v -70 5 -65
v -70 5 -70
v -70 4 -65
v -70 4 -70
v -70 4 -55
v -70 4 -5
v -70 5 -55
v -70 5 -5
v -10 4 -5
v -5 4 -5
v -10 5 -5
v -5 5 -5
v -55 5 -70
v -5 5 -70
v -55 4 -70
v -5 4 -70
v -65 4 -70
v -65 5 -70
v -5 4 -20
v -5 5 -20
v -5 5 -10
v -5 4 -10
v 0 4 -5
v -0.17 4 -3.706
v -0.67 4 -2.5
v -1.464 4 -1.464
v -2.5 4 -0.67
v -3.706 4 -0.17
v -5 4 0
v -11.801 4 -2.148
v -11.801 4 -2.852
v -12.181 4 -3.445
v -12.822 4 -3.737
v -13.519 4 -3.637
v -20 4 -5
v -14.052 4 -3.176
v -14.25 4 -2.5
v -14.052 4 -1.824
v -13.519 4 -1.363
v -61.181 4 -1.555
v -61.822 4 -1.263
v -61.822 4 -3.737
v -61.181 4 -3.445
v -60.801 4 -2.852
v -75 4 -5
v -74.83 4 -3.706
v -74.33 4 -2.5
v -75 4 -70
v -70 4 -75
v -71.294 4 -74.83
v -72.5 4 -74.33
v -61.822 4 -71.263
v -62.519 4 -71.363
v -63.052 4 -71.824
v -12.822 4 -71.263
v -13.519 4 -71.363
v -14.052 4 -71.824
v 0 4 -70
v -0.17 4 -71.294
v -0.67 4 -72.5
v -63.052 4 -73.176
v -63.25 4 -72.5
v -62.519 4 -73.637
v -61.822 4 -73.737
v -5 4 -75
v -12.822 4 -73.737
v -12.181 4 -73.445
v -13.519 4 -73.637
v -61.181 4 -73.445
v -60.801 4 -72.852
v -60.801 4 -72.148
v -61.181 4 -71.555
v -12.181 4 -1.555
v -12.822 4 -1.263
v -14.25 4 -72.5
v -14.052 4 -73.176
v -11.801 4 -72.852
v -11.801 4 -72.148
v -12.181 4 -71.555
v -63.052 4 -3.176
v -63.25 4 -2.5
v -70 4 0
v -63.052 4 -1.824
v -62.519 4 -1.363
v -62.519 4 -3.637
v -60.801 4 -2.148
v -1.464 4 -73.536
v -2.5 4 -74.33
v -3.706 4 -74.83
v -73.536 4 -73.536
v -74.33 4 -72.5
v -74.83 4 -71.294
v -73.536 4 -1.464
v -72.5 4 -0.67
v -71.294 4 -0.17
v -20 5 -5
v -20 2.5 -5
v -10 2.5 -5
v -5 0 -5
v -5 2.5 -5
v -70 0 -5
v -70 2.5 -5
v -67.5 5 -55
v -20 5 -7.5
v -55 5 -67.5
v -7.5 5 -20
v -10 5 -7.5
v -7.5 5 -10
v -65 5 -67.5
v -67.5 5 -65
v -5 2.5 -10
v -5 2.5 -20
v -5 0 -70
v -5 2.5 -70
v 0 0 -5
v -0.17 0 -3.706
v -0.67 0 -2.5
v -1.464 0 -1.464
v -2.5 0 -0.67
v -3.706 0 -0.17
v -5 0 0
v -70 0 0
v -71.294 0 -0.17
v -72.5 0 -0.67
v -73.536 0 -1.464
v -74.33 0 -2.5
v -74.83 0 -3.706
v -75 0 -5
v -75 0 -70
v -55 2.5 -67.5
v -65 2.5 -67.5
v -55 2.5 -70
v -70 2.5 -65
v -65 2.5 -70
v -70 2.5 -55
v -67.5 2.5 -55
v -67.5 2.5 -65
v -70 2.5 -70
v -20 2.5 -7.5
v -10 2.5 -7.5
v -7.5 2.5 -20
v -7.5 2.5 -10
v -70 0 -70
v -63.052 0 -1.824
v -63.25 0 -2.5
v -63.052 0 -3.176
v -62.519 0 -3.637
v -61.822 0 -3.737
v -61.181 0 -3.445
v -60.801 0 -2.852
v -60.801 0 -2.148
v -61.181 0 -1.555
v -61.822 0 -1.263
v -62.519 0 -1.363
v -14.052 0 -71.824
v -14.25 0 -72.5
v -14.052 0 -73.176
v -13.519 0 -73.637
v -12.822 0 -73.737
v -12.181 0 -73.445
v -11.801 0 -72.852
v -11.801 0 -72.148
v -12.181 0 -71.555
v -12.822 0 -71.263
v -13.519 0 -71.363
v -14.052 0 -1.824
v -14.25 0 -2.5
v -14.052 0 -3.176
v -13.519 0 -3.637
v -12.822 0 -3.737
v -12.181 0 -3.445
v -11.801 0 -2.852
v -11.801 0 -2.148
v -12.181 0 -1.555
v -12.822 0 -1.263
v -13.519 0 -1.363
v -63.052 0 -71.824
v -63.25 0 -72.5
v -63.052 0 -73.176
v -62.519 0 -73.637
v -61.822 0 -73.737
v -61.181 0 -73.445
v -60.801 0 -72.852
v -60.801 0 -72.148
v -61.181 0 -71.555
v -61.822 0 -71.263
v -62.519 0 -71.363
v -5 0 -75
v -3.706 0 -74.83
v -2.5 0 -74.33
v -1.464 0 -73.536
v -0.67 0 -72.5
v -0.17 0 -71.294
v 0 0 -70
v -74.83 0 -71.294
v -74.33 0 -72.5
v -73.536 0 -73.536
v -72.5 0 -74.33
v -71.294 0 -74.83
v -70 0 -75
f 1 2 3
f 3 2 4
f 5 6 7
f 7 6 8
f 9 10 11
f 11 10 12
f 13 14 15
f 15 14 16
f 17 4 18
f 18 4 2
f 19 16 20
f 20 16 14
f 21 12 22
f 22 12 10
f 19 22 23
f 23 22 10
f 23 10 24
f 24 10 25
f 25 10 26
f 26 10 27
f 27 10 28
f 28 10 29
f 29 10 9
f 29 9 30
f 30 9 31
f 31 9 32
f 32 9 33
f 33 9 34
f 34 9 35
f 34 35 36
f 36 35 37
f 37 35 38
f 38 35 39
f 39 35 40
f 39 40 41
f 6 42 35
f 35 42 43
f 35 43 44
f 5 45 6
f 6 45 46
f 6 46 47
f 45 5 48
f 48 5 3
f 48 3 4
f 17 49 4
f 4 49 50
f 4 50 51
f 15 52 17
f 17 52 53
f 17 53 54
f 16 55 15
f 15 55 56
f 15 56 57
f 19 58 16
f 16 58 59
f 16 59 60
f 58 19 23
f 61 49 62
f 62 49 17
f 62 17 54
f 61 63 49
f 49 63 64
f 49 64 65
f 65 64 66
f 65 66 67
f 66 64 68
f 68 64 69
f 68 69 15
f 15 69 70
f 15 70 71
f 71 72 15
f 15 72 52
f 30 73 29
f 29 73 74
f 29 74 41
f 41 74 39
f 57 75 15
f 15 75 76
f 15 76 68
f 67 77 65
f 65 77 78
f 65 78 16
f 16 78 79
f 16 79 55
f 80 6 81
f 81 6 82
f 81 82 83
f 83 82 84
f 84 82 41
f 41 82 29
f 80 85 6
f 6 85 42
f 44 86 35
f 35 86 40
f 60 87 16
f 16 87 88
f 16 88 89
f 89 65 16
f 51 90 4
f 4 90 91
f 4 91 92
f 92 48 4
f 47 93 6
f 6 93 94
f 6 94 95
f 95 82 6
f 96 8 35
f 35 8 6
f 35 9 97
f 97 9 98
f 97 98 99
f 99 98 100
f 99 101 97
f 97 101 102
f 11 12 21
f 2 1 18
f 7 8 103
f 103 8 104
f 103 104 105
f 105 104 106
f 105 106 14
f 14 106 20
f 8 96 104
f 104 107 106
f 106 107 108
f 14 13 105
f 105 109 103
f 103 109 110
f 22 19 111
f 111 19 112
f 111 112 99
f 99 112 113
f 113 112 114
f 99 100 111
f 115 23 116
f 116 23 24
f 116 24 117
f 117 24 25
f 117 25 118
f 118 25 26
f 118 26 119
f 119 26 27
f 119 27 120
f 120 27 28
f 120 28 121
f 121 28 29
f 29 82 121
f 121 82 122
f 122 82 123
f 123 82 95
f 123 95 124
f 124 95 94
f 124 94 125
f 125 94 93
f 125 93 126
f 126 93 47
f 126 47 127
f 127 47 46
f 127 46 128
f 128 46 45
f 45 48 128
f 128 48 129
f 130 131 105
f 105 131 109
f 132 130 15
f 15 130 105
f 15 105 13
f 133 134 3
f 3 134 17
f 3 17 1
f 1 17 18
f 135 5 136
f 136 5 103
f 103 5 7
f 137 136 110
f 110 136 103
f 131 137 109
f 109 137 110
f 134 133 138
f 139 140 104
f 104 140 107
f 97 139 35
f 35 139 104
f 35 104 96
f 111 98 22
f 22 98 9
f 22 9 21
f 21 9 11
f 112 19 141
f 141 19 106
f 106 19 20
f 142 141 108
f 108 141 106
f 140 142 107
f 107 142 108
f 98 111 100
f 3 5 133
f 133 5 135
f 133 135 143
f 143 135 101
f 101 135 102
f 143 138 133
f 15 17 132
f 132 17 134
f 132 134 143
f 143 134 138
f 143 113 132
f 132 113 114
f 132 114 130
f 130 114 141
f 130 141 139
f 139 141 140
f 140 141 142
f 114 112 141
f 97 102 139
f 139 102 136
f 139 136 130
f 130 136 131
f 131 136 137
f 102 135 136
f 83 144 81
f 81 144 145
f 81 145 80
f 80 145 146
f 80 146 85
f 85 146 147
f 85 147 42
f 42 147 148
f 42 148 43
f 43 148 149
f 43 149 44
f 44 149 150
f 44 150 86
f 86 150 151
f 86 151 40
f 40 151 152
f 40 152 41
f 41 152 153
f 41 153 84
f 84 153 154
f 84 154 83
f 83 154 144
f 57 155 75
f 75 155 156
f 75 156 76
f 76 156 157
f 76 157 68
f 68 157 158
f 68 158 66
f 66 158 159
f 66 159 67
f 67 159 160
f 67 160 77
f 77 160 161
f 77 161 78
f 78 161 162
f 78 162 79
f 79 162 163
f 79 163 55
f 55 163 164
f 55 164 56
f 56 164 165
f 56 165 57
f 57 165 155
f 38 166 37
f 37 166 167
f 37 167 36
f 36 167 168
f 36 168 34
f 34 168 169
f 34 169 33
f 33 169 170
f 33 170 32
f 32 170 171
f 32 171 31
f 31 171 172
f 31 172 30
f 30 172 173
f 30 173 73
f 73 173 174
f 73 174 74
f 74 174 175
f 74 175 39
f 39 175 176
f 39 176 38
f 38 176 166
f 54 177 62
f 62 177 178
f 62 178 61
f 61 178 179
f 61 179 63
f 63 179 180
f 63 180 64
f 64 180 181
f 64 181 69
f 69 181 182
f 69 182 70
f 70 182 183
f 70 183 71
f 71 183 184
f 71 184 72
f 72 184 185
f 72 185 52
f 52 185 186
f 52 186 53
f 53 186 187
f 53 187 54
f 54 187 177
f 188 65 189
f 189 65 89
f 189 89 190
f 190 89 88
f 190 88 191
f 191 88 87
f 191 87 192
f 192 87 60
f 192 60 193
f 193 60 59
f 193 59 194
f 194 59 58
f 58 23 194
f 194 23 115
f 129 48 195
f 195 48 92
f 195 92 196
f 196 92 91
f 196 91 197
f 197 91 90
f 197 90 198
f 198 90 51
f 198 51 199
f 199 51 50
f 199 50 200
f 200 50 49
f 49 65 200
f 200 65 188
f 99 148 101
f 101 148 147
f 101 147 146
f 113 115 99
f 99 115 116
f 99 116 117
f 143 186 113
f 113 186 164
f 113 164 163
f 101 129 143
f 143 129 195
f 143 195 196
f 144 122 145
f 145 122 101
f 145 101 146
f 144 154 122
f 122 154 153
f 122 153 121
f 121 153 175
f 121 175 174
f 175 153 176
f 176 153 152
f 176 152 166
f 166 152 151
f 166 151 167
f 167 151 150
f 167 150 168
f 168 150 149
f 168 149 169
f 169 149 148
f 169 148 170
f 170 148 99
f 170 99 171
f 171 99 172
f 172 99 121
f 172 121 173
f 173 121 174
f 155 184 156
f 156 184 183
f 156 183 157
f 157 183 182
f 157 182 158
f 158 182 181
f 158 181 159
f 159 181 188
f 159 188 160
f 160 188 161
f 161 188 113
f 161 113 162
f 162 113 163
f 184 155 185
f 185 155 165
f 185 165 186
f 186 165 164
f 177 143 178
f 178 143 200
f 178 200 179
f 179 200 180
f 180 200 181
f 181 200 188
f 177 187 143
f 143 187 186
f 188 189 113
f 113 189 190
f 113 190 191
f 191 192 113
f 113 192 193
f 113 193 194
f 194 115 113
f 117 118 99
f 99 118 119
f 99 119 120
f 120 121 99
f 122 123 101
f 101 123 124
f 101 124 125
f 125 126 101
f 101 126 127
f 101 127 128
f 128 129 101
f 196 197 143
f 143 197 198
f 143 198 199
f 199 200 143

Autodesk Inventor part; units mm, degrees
ref_plane "YZ Plane" through (0, 0, 0) normal (1, 0, 0) x (0, 1, 0)
ref_plane "XZ Plane" through (0, 0, 0) normal (0, 1, 0) x (-1, 0, 0)
ref_plane "XY Plane" through (0, 0, 0) normal (0, 0, 1) x (1, 0, 0)
sketch "Esboço1" plane through (0, 0, 0) normal (0, 1, 0) x (-1, 0, 0)
  line L0 (5, 0) -> (70, 0)
  line L1 (75, -5) -> (75, -70)
  line L2 (70, -75) -> (5, -75)
  line L3 (0, -70) -> (0, -5)
  arc A0 (70, -75) -> (75, -70) centre (70, -70) ccw
  arc A1 (0, -70) -> (5, -75) centre (5, -70) ccw
  arc A2 (75, -5) -> (70, 0) centre (70, -5) ccw
  arc A3 (5, 0) -> (0, -5) centre (5, -5) ccw
  point P0 (0, 0)
  point P1 (75, -75)
  point P2 (75, 0)
  point P3 (0, -75)
  dimension "d0" = 75
  dimension "d1" = 75
  dimension "d2" = 5
extrude "Extrusão1" add sketch "Esboço1" along normal blind 5
sketch "Esboço2" plane through (0, 5, 0) normal (0, 1, 0) x (1, 0, 0)
  line L0 (0, 75) -> (-13, 75)
  line L1 (-75, 75) -> (-62, 75)
  line L2 (-75, 0) -> (-62, 0)
  line L3 (-70, 0) -> (-5, 0) projected
  line L4 (0, 0) -> (-13, 0)
  line L5 (-13, 75) -> (-13, 72.5)
  line L6 (-62, 75) -> (-62, 72.5)
  line L7 (-62, 0) -> (-62, 2.5)
  line L8 (-13, 0) -> (-13, 2.5)
  circle A0 centre (-62, 72.5) radius 1.25
  circle A1 centre (-13, 72.5) radius 1.25
  circle A2 centre (-62, 2.5) radius 1.25
  circle A3 centre (-13, 2.5) radius 1.25
  dimension "d5" = 13
  dimension "d6" = 2.5
  dimension "d7" = 2.5
  dimension "d8" = 2.5
  dimension "d9" = 2.5
  dimension "d10" = 2.5
  dimension "d11" = 2.5
extrude "Extrusão2" cut sketch "Esboço2" against normal through all
sketch "Esboço3" plane through (0, 0, 0) normal (0, -1, 0) x (1, 0, 0)
  line L0 (-5, -75) -> (-70, -75) projected
  line L1 (-5, -75) -> (-5, -70)
  line L2 (-5, -70) -> (-70, -70)
  line L3 (-70, -70) -> (-70, -5)
  line L4 (-70, -5) -> (-5, -5)
  line L5 (-5, -5) -> (-5, -70)
  point P0 (0, 0)
  dimension "d14" = 5
  dimension "d15" = 65
  dimension "d16" = 65
extrude "Extrusão3" cut sketch "Esboço3" against normal blind 2.5
sketch "Esboço4" plane through (0, 5, 0) normal (0, 1, 0) x (1, 0, 0)
  line L0 (-5, 70) -> (-70, 70) projected
  line L1 (-70, 70) -> (-65, 70)
  line L2 (-70, 70) -> (-70, 65)
  line L3 (-70, 65) -> (-65, 70)
  line L4 (-70, 5) -> (-5, 5) projected
  line L5 (-5, 5) -> (-5, 10)
  line L6 (-5, 5) -> (-5, 70) projected
  line L7 (-5, 5) -> (-10, 5)
  line L8 (-10, 5) -> (-5, 10)
  line L9 (-70, 65) -> (-70, 55)
  line L10 (-70, 70) -> (-70, 5) projected
  line L11 (-70, 55) -> (-67.5, 55)
  line L12 (-65, 70) -> (-55, 70)
  line L13 (-55, 70) -> (-55, 67.5)
  line L14 (-55, 67.5) -> (-63.9645, 67.5)
  line L15 (-65, 70) -> (-55, 70)
  line L16 (-70, 65) -> (-70, 55)
  line L17 (-67.5, 65) -> (-65, 67.5)
  line L18 (-67.5, 65) -> (-67.5, 55)
  line L19 (-65, 67.5) -> (-63.9645, 67.5)
  point P0 (0, 0)
sketch "Esboço5" plane through (0, 5, 0) normal (0, 1, 0) x (1, 0, 0)
  line L0 (-5, 5) -> (-5, 70) projected
  line L1 (-5, 10) -> (-5, 20)
  line L2 (-5, 20) -> (-7.5, 20)
  line L3 (-70, 5) -> (-5, 5) projected
  line L4 (-10, 5) -> (-20, 5)
  line L5 (-20, 5) -> (-20, 7.5)
  line L6 (-7.5, 10) -> (-10, 7.5)
  line L7 (-7.5, 20) -> (-7.5, 10)
  line L8 (-20, 7.5) -> (-10, 7.5)
  line L9 (-5, 20) -> (-5, 10)
  line L10 (-20, 5) -> (-10, 5)
  line L11 (-10, 5) -> (-5, 10)
  point P0 (0, 0)
  dimension "d23" = 2.5
  dimension "d24" = 10
  dimension "d25" = 2.5
extrude "Extrusão4" cut sketch "Esboço5" against normal through all contours L11 L3 L5 L8 L6 L7 L2 L0
extrude "Extrusão5" cut sketch "Esboço4" against normal through all contours L13 L14 L19 L17 L18 L11 L9 L3 L0
sketch "Esboço6" plane through (0, 5, 0) normal (0, 1, 0) x (1, 0, 0)
  line L0 (-70, 70) -> (-70, 5) projected
  line L1 (-5, 5) -> (-5, 70) projected
  line L2 (-70, 70) -> (-5, 70)
  line L3 (-5, 70) -> (-5, 5)
  line L4 (-5, 5) -> (-70, 5)
  line L5 (-70, 5) -> (-70, 70)
  arc A0 (0, 70) -> (-5, 75) centre (-5, 70) ccw projected
  line L6 (-5, 75) -> (0, 75)
  line L7 (0, 75) -> (0, 0)
  line L8 (0, 0) -> (-5, 0)
  line L9 (-5, 0) -> (-5, 75)
  line L10 (-75, 75) -> (0, 75)
  line L11 (0, 75) -> (0, 70)
  line L12 (0, 70) -> (-75, 70)
  line L13 (-75, 70) -> (-75, 75)
  line L14 (0, 0) -> (-75, 0)
  line L15 (-75, 0) -> (-75, 5)
  line L16 (-75, 5) -> (0, 5)
  line L17 (0, 5) -> (0, 0)
  line L18 (-75, 0) -> (-70, 0)
  line L19 (-70, 0) -> (-70, 75)
  line L20 (-70, 75) -> (-75, 75)
  line L21 (-75, 75) -> (-75, 0)
extrude "Extrusão6" cut sketch "Esboço6" against normal blind 1 contours L19 L10 L9 L2 | L0 L16 L21 L12 | L12 L13 L10 L19 | L19 L14 L15 L16 | L4 L9 L14 L19 | L12 L7 L16 L1 | L9 A0 L12 | L16 L7 L8 L9 | L6 L7 A0
thread "Rosca1" size "M2.5x0.45" class "6H" standard "ANSI Metric M Profile" length 11
thread "Rosca2" size "M2.5x0.45" class "6H" standard "ANSI Metric M Profile" length 11
thread "Rosca3" size "M2.5x0.45" class "6H" standard "ANSI Metric M Profile" length 11
thread "Rosca4" size "M2.5x0.45" class "6H" standard "ANSI Metric M Profile" length 11
properties part number "Tampa"
